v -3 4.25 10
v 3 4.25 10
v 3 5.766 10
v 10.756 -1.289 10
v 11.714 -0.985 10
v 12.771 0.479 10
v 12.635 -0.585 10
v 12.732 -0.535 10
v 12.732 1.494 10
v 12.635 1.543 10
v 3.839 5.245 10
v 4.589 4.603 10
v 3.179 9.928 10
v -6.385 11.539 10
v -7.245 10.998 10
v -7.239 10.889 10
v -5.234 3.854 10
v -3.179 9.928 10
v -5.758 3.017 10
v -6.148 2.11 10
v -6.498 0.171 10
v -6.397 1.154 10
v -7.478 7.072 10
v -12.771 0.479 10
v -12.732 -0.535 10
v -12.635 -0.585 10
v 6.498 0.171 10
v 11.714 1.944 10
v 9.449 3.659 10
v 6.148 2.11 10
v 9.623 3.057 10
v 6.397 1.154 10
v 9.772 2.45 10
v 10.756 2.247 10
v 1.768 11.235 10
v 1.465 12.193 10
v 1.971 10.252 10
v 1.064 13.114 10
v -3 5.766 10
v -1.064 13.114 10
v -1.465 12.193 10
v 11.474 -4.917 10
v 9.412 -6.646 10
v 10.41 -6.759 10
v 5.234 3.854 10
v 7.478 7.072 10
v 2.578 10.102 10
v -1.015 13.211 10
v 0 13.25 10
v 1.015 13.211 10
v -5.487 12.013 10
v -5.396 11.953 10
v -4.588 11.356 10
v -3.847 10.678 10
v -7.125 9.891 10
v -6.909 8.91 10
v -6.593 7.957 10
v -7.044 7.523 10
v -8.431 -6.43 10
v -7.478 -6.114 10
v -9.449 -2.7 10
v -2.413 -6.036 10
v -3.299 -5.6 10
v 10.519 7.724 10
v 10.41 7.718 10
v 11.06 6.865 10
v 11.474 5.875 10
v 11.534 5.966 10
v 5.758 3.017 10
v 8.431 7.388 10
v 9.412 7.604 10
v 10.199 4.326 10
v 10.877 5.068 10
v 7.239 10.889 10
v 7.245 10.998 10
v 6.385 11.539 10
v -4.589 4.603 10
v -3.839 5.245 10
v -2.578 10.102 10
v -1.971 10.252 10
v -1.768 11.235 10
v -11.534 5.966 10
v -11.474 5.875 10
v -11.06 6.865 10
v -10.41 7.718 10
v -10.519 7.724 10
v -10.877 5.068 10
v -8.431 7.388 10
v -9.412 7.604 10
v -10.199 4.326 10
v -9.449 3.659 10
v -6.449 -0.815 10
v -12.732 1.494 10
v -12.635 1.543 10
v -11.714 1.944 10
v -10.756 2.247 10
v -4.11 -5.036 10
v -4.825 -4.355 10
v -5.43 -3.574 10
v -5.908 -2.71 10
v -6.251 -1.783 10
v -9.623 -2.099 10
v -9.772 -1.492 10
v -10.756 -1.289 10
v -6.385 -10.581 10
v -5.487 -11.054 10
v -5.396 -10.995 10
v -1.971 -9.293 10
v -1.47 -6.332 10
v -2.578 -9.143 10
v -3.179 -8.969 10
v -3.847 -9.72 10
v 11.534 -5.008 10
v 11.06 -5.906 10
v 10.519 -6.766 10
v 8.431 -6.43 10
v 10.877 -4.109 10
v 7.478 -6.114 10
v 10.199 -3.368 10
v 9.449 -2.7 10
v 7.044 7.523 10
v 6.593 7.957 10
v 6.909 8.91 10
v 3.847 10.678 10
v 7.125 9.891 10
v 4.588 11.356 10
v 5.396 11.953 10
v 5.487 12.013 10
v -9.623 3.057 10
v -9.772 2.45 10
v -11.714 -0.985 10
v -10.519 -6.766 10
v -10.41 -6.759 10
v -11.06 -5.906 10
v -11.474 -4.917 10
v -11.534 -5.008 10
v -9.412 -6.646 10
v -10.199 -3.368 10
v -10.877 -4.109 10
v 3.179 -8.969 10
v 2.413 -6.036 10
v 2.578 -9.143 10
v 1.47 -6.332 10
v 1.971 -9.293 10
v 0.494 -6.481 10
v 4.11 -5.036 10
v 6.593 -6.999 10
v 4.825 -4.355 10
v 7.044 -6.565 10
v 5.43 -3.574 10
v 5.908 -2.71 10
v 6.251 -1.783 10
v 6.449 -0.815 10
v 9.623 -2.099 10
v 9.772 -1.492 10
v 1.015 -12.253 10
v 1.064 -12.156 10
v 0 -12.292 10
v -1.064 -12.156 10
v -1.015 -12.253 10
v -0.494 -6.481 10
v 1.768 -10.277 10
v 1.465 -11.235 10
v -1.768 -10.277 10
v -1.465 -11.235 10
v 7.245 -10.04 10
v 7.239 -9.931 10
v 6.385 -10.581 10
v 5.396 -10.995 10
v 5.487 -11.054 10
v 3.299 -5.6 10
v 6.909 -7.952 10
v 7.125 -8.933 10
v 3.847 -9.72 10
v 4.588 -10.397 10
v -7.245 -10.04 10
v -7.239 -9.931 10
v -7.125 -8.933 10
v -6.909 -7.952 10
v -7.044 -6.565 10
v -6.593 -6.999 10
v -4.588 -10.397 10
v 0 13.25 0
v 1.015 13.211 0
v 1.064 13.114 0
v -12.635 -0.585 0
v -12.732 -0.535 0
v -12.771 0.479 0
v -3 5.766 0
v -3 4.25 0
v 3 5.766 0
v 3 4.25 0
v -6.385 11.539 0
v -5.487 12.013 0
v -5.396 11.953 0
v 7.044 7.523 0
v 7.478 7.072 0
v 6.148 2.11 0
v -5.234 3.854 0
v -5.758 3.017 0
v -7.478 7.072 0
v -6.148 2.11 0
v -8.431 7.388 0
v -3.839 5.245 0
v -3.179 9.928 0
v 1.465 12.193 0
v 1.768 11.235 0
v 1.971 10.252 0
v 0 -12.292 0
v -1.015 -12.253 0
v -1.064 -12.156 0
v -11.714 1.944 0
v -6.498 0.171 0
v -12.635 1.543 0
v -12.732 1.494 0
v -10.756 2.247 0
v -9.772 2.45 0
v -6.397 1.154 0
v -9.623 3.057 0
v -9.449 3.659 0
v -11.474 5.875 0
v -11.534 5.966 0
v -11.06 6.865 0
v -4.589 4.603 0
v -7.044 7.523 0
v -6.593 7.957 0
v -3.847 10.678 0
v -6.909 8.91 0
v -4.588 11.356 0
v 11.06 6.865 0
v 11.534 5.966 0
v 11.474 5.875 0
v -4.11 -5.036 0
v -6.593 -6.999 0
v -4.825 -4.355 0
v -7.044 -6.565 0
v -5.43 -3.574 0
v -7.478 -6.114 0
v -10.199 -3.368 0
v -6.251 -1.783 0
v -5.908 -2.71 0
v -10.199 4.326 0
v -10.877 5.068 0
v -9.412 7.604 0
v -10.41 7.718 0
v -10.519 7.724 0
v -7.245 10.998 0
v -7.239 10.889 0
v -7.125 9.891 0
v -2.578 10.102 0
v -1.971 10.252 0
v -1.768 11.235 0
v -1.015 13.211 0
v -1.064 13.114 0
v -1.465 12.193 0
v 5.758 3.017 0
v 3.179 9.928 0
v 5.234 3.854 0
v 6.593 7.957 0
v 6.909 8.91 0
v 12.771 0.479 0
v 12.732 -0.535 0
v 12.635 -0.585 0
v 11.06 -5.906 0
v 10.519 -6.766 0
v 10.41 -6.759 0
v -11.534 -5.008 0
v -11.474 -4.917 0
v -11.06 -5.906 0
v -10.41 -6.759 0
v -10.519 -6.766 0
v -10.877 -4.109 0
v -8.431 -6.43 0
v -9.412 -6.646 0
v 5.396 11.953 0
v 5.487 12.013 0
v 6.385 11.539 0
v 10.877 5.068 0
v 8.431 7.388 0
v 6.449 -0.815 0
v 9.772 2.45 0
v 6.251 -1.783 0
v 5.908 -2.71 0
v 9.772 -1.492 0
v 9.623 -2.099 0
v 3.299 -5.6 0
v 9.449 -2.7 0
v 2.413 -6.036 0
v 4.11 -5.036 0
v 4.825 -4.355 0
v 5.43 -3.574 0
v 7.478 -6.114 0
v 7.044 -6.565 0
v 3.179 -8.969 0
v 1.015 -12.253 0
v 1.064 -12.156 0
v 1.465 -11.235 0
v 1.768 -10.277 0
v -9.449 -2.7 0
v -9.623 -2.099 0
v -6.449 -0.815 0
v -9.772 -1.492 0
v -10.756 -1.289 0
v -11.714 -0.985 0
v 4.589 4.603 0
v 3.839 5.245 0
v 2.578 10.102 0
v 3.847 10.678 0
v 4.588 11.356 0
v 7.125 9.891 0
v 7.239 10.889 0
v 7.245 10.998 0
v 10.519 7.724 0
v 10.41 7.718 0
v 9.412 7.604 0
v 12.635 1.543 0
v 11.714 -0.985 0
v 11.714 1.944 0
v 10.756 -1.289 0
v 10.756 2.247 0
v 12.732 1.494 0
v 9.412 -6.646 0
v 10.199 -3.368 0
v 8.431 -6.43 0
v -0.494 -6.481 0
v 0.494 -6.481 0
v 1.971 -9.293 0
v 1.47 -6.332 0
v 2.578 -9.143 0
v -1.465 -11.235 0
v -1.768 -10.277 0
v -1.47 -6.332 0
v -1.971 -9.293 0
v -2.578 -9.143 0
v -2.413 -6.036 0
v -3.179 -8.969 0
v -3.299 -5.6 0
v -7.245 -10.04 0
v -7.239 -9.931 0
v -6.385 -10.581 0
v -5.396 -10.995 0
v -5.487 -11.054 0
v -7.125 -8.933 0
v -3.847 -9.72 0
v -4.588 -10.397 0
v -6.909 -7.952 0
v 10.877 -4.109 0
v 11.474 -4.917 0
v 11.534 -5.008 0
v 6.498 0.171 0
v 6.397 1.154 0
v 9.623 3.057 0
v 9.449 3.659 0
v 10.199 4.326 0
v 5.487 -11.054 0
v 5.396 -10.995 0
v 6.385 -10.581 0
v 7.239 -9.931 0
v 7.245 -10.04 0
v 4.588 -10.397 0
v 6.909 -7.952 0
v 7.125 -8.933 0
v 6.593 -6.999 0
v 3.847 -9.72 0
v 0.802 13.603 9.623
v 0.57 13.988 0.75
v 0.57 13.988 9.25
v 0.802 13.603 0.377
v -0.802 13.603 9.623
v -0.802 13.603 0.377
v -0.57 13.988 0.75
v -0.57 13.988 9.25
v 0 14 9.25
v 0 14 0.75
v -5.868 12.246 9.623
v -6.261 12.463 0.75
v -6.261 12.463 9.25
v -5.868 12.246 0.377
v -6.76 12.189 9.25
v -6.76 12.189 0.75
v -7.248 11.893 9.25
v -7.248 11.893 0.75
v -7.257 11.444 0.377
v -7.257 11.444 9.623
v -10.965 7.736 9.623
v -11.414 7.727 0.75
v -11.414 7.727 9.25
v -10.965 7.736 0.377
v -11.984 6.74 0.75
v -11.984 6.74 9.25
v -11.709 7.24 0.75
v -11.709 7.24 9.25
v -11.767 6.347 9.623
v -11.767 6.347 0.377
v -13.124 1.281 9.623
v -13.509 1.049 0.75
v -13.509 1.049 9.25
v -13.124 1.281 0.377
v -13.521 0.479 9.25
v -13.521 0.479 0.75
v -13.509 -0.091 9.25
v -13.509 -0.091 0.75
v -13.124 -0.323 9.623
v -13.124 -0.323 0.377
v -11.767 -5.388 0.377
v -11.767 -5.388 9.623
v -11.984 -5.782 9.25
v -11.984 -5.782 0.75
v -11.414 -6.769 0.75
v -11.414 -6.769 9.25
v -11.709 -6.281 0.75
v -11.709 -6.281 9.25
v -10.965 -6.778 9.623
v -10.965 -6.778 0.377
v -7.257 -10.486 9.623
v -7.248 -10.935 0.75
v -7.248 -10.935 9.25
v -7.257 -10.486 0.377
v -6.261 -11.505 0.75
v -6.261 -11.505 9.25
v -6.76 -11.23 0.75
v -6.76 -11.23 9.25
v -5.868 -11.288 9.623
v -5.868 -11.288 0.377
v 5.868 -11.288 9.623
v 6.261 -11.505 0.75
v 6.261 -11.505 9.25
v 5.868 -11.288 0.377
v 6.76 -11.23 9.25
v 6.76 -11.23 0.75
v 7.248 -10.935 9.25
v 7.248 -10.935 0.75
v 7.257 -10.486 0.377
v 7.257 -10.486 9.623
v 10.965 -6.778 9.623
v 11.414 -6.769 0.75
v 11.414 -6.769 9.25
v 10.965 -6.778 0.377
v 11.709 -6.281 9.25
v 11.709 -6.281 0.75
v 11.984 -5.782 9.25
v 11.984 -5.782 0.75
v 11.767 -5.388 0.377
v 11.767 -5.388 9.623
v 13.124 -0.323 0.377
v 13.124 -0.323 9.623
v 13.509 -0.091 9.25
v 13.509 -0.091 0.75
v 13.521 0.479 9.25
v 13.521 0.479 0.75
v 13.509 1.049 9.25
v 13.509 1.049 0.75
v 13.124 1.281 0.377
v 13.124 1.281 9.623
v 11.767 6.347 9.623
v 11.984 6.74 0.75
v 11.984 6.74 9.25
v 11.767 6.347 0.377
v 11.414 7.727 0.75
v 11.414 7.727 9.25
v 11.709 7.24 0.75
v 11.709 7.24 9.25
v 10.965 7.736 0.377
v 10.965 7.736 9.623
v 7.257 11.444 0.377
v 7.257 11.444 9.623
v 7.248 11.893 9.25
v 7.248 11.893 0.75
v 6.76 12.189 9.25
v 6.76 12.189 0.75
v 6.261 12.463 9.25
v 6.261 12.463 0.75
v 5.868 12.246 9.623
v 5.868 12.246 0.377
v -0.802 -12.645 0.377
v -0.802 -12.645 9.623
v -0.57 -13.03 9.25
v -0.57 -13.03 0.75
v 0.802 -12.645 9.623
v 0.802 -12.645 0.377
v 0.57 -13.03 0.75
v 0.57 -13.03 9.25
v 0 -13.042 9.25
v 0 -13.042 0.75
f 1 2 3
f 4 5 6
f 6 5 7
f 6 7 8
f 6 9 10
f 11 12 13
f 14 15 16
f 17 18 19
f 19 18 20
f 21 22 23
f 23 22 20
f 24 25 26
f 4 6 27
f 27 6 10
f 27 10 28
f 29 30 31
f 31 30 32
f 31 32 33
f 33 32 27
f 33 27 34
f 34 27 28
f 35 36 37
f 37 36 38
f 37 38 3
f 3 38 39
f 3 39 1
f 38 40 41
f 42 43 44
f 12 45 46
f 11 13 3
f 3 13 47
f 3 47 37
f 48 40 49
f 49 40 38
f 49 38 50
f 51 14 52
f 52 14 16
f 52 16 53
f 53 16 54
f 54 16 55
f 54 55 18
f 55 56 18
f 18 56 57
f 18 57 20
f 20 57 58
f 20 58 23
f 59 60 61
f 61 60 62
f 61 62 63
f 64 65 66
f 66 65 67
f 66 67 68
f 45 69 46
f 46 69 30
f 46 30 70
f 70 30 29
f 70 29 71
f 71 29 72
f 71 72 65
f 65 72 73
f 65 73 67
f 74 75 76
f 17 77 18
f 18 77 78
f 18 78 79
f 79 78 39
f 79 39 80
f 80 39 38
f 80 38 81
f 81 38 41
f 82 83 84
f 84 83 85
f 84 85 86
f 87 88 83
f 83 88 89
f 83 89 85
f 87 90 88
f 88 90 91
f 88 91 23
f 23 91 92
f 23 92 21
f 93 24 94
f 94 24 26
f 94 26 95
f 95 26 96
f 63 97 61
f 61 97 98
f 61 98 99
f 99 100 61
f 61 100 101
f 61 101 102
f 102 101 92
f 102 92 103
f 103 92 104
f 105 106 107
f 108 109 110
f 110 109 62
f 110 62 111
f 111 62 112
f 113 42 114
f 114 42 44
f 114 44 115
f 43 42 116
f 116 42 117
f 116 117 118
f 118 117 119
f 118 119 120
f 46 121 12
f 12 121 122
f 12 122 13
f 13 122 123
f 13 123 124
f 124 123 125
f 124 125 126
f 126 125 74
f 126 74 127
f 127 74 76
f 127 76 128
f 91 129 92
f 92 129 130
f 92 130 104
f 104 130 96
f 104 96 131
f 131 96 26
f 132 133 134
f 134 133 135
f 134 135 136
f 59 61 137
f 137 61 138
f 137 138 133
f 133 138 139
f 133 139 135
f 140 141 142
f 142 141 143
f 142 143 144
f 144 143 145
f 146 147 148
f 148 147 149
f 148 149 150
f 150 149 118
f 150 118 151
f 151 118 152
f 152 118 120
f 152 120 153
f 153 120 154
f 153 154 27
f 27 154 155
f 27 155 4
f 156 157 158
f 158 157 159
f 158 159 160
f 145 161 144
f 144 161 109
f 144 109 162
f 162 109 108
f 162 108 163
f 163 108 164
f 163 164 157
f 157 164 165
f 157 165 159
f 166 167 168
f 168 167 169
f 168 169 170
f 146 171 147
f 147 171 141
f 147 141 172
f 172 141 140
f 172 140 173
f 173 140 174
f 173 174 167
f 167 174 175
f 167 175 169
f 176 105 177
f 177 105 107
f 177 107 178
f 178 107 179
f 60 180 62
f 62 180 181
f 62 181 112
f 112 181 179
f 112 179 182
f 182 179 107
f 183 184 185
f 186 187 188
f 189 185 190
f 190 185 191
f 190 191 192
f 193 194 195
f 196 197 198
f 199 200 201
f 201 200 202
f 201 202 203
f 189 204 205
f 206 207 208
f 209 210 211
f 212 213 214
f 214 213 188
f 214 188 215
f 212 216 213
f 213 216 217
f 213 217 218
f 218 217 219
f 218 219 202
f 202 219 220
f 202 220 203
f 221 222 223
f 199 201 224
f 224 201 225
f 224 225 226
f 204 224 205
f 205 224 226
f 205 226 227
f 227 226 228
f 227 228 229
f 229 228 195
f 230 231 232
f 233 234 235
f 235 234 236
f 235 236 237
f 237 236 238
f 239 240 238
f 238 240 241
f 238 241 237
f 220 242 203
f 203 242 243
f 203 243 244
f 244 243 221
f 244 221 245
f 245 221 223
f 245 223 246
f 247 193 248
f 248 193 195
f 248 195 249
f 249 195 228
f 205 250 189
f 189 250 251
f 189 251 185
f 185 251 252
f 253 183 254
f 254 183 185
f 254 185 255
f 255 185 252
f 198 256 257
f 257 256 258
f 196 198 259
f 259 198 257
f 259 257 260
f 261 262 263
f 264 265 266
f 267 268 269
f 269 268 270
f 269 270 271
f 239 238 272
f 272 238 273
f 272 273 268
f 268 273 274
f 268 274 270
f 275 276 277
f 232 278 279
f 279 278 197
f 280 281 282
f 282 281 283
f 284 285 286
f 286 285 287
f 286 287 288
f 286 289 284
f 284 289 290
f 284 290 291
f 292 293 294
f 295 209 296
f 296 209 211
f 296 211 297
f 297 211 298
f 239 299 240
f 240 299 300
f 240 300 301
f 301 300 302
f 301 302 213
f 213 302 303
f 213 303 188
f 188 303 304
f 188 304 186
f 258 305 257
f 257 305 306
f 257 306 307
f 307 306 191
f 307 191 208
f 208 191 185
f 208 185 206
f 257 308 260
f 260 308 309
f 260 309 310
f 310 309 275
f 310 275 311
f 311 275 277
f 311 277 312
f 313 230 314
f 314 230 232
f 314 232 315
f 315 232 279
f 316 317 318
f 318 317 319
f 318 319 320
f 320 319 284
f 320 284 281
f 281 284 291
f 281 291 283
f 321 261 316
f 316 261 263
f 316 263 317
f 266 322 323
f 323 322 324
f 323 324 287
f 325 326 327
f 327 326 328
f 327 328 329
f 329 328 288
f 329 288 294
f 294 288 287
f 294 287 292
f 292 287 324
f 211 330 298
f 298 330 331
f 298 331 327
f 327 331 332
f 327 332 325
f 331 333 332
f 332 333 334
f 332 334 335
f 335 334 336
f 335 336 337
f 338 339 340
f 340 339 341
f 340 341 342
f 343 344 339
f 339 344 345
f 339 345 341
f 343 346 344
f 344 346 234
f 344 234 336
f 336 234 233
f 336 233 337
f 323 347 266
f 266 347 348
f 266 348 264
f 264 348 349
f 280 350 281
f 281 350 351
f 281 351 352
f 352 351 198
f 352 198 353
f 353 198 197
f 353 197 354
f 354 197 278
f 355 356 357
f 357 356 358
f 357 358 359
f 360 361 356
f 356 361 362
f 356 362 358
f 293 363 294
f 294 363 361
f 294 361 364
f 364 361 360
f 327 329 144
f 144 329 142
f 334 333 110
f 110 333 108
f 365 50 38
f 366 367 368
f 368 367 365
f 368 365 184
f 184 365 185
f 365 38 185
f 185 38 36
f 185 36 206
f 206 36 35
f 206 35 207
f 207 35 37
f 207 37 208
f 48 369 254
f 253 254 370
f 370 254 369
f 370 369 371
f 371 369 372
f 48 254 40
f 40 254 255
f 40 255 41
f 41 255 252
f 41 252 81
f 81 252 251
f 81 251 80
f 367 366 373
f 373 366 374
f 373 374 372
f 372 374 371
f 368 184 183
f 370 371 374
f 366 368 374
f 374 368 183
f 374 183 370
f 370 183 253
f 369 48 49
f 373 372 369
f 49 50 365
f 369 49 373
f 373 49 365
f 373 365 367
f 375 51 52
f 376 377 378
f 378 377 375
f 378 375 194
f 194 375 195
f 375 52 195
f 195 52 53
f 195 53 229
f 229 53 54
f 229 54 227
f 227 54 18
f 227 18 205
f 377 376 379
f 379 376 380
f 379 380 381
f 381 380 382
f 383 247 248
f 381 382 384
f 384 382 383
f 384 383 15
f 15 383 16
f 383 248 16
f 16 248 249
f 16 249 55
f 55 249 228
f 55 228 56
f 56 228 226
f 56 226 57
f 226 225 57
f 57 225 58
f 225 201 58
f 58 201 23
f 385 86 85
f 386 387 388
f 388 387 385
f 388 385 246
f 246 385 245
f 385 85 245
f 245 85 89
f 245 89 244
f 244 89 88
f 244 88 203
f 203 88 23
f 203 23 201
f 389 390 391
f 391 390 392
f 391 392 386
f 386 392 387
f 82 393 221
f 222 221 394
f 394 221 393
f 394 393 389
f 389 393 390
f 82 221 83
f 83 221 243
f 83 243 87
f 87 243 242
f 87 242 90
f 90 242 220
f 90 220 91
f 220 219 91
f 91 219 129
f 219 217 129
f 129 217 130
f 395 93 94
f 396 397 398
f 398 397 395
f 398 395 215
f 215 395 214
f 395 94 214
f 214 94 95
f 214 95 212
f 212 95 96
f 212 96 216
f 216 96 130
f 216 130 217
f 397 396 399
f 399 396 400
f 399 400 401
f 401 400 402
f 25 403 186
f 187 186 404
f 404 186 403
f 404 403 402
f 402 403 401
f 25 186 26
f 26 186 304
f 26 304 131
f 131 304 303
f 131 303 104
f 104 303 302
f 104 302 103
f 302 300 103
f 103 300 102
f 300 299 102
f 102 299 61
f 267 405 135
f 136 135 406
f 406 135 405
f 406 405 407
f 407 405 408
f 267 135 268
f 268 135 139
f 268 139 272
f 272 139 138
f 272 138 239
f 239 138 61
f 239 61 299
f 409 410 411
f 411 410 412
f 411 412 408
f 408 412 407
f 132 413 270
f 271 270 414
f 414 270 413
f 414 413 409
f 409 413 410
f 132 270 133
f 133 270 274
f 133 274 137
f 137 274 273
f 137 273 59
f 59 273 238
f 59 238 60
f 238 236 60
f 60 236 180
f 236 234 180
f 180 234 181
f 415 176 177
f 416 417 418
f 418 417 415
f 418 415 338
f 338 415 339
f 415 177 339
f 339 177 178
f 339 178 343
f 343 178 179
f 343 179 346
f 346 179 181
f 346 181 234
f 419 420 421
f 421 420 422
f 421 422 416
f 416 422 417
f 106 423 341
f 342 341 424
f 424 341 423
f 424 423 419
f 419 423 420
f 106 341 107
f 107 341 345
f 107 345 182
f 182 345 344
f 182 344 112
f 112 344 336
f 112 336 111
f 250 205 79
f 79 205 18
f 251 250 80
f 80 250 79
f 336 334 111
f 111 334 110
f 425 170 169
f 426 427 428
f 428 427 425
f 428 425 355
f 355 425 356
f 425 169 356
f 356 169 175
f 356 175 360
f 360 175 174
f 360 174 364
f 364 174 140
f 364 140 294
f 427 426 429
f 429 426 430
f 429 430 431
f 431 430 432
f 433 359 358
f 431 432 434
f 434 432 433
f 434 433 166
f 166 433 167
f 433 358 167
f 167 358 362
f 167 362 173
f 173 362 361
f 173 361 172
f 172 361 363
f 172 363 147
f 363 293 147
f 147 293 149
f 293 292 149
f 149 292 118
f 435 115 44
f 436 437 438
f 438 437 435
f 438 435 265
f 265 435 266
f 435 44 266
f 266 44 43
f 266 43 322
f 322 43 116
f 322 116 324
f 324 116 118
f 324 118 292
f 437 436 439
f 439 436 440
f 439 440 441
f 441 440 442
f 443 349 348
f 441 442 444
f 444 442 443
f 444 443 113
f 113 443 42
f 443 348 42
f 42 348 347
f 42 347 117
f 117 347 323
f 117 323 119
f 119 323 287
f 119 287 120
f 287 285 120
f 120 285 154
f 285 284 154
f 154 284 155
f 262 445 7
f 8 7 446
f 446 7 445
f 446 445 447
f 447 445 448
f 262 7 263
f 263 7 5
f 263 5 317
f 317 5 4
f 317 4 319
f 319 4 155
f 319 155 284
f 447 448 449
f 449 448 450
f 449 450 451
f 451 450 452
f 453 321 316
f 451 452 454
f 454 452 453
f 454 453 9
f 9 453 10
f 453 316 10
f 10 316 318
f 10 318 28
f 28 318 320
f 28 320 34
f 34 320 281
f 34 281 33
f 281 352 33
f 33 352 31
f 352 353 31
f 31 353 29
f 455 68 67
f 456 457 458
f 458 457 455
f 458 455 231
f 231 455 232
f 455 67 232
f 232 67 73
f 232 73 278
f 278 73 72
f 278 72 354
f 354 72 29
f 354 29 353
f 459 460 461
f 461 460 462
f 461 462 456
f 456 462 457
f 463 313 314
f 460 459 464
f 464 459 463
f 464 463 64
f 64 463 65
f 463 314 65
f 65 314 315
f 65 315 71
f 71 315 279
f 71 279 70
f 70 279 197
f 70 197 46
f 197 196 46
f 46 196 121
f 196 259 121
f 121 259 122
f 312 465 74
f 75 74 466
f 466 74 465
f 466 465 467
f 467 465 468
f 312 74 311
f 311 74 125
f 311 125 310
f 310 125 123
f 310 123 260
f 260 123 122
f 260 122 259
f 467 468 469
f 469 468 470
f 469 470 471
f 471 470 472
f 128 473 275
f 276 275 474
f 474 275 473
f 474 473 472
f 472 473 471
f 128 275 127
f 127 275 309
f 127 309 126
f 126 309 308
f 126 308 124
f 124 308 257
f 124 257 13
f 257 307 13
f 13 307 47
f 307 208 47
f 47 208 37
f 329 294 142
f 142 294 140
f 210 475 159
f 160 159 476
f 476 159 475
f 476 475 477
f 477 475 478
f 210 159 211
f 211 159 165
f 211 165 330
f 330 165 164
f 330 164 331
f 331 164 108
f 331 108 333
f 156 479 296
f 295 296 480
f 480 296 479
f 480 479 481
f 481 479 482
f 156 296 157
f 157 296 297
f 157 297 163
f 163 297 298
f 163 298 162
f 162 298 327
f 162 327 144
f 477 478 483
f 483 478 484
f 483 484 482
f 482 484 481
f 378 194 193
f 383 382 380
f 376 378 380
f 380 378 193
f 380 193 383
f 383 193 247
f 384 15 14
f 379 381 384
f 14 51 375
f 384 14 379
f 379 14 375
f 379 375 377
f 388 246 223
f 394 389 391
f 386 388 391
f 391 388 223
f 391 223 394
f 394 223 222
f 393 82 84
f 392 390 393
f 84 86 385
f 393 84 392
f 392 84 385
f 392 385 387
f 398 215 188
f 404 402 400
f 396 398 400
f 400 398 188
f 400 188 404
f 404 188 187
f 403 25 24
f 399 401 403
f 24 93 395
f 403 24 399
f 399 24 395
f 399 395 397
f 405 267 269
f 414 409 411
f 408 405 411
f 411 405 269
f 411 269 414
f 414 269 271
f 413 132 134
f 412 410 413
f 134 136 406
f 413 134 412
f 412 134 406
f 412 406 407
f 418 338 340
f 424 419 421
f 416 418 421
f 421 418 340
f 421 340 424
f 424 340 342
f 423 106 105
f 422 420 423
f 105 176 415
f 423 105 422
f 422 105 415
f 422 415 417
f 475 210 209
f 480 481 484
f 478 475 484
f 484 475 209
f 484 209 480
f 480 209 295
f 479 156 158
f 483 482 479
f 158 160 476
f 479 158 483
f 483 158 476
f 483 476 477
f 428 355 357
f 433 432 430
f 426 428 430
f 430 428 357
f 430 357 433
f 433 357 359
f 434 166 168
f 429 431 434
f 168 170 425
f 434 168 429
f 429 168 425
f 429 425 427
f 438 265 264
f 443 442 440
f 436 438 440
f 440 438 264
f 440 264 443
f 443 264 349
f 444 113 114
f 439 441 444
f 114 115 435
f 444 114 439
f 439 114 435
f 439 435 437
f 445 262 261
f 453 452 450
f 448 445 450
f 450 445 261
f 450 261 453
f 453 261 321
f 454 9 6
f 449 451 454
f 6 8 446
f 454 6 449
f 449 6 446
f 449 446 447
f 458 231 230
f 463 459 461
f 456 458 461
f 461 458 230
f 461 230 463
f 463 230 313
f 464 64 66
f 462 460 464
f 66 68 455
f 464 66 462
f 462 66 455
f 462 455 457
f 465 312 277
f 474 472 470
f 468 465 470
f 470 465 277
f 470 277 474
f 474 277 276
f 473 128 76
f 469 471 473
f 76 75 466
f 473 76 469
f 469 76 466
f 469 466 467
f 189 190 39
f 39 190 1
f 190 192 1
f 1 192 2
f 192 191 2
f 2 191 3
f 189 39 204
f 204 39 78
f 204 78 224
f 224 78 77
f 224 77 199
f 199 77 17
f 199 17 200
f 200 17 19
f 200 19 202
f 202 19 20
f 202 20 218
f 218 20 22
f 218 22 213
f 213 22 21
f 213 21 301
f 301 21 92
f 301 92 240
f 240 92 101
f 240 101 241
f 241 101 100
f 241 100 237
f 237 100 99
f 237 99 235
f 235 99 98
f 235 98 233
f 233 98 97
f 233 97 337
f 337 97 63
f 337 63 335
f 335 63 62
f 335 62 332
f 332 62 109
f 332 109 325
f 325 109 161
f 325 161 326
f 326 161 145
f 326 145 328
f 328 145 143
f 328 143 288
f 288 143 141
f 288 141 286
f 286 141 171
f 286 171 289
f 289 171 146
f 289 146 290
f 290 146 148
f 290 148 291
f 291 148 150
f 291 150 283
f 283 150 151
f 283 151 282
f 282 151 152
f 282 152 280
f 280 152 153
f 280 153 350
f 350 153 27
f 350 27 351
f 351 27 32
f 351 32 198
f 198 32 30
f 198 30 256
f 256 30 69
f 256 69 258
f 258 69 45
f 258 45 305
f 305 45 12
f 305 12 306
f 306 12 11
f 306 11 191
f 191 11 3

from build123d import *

# Parameters (mm, degrees)
BOSS_EXTRUDE1_DEPTH          = 10
CHAMFER1_SIZE                = 0.75
CIRPATTERN1_COUNT            = 12
CHAMFER1_OF_CIRPATTERN1_SIZE = 0.75
CUT_EXTRUDE2_DEPTH           = 10


with BuildPart() as part:
    # Sketch1 → Boss-Extrude1 (new body)
    with BuildSketch(Plane.XY):
        with BuildLine():
            ThreePointArc((-2.07, 9.271736623), (0, -9.5), (2.07, 9.271736623))
            ThreePointArc((2.07, 9.271736623), (1.625653209, 11.72726856), (0.57, 13.988391616))
            ThreePointArc((0.57, 13.988391616), (0, 14), (-0.57, 13.988391616))
            ThreePointArc((-0.57, 13.988391616), (-1.625653209, 11.72726856), (-2.07, 9.271736623))
        make_face()
    boss_extrude1 = extrude(amount=BOSS_EXTRUDE1_DEPTH)

    # Chamfer1
    chamfer1_edges = [part.edges().sort_by_distance(p)[0] for p in [
        (0, 14, 10),
        (0, 14, 0),
    ]]
    chamfer(chamfer1_edges, length=CHAMFER1_SIZE)

    # CirPattern1: Boss-Extrude1 ×12 about axis
    cirpattern1_axis = Axis((0, 0.479093936, 0), (0, 0, 1))
    for i in range(1, CIRPATTERN1_COUNT):
        add(boss_extrude1.rotate(cirpattern1_axis, i * 360 / CIRPATTERN1_COUNT))

    # Chamfer1 of CirPattern1
    chamfer1_of_cirpattern1_edges = [part.edges().sort_by_distance(p)[0] for p in [
        (-6.760453032, 12.18854207, 10),
        (-6.760453032, 12.18854207, 0),
        (-11.709448133, 7.239546968, 10),
        (-11.709448133, 7.239546968, 0),
        (-13.520906064, 0.479093936, 10),
        (-13.520906064, 0.479093936, 0),
        (-11.709448133, -6.281359096, 10),
        (-11.709448133, -6.281359096, 0),
        (-6.760453032, -11.230354197, 10),
        (-6.760453032, -11.230354197, 0),
        (0, -13.041812128, 10),
        (0, -13.041812128, 0),
        (6.760453032, -11.230354197, 10),
        (6.760453032, -11.230354197, 0),
        (11.709448133, -6.281359096, 10),
        (11.709448133, -6.281359096, 0),
        (13.520906064, 0.479093936, 10),
        (13.520906064, 0.479093936, 0),
        (11.709448133, 7.239546968, 10),
        (11.709448133, 7.239546968, 0),
        (6.760453032, 12.18854207, 10),
        (6.760453032, 12.18854207, 0),
    ]]
    chamfer(chamfer1_of_cirpattern1_edges, length=CHAMFER1_OF_CIRPATTERN1_SIZE)

    # Sketch3 → Cut-Extrude2 (cut)
    with BuildSketch(Plane.XY.offset(10)):
        with BuildLine():
            Line((-3, 4.25), (-3, 5.766281297))
            ThreePointArc((-3, 5.766281297), (-3.372684391, -5.556527693), (6.5, 0))
            ThreePointArc((6.5, 0), (5.556527693, 3.372684391), (3, 5.766281297))
            Line((3, 5.766281297), (3, 4.25))
            Line((3, 4.25), (-3, 4.25))
        make_face()
    extrude(amount=-CUT_EXTRUDE2_DEPTH, mode=Mode.SUBTRACT)


solid = part.part
